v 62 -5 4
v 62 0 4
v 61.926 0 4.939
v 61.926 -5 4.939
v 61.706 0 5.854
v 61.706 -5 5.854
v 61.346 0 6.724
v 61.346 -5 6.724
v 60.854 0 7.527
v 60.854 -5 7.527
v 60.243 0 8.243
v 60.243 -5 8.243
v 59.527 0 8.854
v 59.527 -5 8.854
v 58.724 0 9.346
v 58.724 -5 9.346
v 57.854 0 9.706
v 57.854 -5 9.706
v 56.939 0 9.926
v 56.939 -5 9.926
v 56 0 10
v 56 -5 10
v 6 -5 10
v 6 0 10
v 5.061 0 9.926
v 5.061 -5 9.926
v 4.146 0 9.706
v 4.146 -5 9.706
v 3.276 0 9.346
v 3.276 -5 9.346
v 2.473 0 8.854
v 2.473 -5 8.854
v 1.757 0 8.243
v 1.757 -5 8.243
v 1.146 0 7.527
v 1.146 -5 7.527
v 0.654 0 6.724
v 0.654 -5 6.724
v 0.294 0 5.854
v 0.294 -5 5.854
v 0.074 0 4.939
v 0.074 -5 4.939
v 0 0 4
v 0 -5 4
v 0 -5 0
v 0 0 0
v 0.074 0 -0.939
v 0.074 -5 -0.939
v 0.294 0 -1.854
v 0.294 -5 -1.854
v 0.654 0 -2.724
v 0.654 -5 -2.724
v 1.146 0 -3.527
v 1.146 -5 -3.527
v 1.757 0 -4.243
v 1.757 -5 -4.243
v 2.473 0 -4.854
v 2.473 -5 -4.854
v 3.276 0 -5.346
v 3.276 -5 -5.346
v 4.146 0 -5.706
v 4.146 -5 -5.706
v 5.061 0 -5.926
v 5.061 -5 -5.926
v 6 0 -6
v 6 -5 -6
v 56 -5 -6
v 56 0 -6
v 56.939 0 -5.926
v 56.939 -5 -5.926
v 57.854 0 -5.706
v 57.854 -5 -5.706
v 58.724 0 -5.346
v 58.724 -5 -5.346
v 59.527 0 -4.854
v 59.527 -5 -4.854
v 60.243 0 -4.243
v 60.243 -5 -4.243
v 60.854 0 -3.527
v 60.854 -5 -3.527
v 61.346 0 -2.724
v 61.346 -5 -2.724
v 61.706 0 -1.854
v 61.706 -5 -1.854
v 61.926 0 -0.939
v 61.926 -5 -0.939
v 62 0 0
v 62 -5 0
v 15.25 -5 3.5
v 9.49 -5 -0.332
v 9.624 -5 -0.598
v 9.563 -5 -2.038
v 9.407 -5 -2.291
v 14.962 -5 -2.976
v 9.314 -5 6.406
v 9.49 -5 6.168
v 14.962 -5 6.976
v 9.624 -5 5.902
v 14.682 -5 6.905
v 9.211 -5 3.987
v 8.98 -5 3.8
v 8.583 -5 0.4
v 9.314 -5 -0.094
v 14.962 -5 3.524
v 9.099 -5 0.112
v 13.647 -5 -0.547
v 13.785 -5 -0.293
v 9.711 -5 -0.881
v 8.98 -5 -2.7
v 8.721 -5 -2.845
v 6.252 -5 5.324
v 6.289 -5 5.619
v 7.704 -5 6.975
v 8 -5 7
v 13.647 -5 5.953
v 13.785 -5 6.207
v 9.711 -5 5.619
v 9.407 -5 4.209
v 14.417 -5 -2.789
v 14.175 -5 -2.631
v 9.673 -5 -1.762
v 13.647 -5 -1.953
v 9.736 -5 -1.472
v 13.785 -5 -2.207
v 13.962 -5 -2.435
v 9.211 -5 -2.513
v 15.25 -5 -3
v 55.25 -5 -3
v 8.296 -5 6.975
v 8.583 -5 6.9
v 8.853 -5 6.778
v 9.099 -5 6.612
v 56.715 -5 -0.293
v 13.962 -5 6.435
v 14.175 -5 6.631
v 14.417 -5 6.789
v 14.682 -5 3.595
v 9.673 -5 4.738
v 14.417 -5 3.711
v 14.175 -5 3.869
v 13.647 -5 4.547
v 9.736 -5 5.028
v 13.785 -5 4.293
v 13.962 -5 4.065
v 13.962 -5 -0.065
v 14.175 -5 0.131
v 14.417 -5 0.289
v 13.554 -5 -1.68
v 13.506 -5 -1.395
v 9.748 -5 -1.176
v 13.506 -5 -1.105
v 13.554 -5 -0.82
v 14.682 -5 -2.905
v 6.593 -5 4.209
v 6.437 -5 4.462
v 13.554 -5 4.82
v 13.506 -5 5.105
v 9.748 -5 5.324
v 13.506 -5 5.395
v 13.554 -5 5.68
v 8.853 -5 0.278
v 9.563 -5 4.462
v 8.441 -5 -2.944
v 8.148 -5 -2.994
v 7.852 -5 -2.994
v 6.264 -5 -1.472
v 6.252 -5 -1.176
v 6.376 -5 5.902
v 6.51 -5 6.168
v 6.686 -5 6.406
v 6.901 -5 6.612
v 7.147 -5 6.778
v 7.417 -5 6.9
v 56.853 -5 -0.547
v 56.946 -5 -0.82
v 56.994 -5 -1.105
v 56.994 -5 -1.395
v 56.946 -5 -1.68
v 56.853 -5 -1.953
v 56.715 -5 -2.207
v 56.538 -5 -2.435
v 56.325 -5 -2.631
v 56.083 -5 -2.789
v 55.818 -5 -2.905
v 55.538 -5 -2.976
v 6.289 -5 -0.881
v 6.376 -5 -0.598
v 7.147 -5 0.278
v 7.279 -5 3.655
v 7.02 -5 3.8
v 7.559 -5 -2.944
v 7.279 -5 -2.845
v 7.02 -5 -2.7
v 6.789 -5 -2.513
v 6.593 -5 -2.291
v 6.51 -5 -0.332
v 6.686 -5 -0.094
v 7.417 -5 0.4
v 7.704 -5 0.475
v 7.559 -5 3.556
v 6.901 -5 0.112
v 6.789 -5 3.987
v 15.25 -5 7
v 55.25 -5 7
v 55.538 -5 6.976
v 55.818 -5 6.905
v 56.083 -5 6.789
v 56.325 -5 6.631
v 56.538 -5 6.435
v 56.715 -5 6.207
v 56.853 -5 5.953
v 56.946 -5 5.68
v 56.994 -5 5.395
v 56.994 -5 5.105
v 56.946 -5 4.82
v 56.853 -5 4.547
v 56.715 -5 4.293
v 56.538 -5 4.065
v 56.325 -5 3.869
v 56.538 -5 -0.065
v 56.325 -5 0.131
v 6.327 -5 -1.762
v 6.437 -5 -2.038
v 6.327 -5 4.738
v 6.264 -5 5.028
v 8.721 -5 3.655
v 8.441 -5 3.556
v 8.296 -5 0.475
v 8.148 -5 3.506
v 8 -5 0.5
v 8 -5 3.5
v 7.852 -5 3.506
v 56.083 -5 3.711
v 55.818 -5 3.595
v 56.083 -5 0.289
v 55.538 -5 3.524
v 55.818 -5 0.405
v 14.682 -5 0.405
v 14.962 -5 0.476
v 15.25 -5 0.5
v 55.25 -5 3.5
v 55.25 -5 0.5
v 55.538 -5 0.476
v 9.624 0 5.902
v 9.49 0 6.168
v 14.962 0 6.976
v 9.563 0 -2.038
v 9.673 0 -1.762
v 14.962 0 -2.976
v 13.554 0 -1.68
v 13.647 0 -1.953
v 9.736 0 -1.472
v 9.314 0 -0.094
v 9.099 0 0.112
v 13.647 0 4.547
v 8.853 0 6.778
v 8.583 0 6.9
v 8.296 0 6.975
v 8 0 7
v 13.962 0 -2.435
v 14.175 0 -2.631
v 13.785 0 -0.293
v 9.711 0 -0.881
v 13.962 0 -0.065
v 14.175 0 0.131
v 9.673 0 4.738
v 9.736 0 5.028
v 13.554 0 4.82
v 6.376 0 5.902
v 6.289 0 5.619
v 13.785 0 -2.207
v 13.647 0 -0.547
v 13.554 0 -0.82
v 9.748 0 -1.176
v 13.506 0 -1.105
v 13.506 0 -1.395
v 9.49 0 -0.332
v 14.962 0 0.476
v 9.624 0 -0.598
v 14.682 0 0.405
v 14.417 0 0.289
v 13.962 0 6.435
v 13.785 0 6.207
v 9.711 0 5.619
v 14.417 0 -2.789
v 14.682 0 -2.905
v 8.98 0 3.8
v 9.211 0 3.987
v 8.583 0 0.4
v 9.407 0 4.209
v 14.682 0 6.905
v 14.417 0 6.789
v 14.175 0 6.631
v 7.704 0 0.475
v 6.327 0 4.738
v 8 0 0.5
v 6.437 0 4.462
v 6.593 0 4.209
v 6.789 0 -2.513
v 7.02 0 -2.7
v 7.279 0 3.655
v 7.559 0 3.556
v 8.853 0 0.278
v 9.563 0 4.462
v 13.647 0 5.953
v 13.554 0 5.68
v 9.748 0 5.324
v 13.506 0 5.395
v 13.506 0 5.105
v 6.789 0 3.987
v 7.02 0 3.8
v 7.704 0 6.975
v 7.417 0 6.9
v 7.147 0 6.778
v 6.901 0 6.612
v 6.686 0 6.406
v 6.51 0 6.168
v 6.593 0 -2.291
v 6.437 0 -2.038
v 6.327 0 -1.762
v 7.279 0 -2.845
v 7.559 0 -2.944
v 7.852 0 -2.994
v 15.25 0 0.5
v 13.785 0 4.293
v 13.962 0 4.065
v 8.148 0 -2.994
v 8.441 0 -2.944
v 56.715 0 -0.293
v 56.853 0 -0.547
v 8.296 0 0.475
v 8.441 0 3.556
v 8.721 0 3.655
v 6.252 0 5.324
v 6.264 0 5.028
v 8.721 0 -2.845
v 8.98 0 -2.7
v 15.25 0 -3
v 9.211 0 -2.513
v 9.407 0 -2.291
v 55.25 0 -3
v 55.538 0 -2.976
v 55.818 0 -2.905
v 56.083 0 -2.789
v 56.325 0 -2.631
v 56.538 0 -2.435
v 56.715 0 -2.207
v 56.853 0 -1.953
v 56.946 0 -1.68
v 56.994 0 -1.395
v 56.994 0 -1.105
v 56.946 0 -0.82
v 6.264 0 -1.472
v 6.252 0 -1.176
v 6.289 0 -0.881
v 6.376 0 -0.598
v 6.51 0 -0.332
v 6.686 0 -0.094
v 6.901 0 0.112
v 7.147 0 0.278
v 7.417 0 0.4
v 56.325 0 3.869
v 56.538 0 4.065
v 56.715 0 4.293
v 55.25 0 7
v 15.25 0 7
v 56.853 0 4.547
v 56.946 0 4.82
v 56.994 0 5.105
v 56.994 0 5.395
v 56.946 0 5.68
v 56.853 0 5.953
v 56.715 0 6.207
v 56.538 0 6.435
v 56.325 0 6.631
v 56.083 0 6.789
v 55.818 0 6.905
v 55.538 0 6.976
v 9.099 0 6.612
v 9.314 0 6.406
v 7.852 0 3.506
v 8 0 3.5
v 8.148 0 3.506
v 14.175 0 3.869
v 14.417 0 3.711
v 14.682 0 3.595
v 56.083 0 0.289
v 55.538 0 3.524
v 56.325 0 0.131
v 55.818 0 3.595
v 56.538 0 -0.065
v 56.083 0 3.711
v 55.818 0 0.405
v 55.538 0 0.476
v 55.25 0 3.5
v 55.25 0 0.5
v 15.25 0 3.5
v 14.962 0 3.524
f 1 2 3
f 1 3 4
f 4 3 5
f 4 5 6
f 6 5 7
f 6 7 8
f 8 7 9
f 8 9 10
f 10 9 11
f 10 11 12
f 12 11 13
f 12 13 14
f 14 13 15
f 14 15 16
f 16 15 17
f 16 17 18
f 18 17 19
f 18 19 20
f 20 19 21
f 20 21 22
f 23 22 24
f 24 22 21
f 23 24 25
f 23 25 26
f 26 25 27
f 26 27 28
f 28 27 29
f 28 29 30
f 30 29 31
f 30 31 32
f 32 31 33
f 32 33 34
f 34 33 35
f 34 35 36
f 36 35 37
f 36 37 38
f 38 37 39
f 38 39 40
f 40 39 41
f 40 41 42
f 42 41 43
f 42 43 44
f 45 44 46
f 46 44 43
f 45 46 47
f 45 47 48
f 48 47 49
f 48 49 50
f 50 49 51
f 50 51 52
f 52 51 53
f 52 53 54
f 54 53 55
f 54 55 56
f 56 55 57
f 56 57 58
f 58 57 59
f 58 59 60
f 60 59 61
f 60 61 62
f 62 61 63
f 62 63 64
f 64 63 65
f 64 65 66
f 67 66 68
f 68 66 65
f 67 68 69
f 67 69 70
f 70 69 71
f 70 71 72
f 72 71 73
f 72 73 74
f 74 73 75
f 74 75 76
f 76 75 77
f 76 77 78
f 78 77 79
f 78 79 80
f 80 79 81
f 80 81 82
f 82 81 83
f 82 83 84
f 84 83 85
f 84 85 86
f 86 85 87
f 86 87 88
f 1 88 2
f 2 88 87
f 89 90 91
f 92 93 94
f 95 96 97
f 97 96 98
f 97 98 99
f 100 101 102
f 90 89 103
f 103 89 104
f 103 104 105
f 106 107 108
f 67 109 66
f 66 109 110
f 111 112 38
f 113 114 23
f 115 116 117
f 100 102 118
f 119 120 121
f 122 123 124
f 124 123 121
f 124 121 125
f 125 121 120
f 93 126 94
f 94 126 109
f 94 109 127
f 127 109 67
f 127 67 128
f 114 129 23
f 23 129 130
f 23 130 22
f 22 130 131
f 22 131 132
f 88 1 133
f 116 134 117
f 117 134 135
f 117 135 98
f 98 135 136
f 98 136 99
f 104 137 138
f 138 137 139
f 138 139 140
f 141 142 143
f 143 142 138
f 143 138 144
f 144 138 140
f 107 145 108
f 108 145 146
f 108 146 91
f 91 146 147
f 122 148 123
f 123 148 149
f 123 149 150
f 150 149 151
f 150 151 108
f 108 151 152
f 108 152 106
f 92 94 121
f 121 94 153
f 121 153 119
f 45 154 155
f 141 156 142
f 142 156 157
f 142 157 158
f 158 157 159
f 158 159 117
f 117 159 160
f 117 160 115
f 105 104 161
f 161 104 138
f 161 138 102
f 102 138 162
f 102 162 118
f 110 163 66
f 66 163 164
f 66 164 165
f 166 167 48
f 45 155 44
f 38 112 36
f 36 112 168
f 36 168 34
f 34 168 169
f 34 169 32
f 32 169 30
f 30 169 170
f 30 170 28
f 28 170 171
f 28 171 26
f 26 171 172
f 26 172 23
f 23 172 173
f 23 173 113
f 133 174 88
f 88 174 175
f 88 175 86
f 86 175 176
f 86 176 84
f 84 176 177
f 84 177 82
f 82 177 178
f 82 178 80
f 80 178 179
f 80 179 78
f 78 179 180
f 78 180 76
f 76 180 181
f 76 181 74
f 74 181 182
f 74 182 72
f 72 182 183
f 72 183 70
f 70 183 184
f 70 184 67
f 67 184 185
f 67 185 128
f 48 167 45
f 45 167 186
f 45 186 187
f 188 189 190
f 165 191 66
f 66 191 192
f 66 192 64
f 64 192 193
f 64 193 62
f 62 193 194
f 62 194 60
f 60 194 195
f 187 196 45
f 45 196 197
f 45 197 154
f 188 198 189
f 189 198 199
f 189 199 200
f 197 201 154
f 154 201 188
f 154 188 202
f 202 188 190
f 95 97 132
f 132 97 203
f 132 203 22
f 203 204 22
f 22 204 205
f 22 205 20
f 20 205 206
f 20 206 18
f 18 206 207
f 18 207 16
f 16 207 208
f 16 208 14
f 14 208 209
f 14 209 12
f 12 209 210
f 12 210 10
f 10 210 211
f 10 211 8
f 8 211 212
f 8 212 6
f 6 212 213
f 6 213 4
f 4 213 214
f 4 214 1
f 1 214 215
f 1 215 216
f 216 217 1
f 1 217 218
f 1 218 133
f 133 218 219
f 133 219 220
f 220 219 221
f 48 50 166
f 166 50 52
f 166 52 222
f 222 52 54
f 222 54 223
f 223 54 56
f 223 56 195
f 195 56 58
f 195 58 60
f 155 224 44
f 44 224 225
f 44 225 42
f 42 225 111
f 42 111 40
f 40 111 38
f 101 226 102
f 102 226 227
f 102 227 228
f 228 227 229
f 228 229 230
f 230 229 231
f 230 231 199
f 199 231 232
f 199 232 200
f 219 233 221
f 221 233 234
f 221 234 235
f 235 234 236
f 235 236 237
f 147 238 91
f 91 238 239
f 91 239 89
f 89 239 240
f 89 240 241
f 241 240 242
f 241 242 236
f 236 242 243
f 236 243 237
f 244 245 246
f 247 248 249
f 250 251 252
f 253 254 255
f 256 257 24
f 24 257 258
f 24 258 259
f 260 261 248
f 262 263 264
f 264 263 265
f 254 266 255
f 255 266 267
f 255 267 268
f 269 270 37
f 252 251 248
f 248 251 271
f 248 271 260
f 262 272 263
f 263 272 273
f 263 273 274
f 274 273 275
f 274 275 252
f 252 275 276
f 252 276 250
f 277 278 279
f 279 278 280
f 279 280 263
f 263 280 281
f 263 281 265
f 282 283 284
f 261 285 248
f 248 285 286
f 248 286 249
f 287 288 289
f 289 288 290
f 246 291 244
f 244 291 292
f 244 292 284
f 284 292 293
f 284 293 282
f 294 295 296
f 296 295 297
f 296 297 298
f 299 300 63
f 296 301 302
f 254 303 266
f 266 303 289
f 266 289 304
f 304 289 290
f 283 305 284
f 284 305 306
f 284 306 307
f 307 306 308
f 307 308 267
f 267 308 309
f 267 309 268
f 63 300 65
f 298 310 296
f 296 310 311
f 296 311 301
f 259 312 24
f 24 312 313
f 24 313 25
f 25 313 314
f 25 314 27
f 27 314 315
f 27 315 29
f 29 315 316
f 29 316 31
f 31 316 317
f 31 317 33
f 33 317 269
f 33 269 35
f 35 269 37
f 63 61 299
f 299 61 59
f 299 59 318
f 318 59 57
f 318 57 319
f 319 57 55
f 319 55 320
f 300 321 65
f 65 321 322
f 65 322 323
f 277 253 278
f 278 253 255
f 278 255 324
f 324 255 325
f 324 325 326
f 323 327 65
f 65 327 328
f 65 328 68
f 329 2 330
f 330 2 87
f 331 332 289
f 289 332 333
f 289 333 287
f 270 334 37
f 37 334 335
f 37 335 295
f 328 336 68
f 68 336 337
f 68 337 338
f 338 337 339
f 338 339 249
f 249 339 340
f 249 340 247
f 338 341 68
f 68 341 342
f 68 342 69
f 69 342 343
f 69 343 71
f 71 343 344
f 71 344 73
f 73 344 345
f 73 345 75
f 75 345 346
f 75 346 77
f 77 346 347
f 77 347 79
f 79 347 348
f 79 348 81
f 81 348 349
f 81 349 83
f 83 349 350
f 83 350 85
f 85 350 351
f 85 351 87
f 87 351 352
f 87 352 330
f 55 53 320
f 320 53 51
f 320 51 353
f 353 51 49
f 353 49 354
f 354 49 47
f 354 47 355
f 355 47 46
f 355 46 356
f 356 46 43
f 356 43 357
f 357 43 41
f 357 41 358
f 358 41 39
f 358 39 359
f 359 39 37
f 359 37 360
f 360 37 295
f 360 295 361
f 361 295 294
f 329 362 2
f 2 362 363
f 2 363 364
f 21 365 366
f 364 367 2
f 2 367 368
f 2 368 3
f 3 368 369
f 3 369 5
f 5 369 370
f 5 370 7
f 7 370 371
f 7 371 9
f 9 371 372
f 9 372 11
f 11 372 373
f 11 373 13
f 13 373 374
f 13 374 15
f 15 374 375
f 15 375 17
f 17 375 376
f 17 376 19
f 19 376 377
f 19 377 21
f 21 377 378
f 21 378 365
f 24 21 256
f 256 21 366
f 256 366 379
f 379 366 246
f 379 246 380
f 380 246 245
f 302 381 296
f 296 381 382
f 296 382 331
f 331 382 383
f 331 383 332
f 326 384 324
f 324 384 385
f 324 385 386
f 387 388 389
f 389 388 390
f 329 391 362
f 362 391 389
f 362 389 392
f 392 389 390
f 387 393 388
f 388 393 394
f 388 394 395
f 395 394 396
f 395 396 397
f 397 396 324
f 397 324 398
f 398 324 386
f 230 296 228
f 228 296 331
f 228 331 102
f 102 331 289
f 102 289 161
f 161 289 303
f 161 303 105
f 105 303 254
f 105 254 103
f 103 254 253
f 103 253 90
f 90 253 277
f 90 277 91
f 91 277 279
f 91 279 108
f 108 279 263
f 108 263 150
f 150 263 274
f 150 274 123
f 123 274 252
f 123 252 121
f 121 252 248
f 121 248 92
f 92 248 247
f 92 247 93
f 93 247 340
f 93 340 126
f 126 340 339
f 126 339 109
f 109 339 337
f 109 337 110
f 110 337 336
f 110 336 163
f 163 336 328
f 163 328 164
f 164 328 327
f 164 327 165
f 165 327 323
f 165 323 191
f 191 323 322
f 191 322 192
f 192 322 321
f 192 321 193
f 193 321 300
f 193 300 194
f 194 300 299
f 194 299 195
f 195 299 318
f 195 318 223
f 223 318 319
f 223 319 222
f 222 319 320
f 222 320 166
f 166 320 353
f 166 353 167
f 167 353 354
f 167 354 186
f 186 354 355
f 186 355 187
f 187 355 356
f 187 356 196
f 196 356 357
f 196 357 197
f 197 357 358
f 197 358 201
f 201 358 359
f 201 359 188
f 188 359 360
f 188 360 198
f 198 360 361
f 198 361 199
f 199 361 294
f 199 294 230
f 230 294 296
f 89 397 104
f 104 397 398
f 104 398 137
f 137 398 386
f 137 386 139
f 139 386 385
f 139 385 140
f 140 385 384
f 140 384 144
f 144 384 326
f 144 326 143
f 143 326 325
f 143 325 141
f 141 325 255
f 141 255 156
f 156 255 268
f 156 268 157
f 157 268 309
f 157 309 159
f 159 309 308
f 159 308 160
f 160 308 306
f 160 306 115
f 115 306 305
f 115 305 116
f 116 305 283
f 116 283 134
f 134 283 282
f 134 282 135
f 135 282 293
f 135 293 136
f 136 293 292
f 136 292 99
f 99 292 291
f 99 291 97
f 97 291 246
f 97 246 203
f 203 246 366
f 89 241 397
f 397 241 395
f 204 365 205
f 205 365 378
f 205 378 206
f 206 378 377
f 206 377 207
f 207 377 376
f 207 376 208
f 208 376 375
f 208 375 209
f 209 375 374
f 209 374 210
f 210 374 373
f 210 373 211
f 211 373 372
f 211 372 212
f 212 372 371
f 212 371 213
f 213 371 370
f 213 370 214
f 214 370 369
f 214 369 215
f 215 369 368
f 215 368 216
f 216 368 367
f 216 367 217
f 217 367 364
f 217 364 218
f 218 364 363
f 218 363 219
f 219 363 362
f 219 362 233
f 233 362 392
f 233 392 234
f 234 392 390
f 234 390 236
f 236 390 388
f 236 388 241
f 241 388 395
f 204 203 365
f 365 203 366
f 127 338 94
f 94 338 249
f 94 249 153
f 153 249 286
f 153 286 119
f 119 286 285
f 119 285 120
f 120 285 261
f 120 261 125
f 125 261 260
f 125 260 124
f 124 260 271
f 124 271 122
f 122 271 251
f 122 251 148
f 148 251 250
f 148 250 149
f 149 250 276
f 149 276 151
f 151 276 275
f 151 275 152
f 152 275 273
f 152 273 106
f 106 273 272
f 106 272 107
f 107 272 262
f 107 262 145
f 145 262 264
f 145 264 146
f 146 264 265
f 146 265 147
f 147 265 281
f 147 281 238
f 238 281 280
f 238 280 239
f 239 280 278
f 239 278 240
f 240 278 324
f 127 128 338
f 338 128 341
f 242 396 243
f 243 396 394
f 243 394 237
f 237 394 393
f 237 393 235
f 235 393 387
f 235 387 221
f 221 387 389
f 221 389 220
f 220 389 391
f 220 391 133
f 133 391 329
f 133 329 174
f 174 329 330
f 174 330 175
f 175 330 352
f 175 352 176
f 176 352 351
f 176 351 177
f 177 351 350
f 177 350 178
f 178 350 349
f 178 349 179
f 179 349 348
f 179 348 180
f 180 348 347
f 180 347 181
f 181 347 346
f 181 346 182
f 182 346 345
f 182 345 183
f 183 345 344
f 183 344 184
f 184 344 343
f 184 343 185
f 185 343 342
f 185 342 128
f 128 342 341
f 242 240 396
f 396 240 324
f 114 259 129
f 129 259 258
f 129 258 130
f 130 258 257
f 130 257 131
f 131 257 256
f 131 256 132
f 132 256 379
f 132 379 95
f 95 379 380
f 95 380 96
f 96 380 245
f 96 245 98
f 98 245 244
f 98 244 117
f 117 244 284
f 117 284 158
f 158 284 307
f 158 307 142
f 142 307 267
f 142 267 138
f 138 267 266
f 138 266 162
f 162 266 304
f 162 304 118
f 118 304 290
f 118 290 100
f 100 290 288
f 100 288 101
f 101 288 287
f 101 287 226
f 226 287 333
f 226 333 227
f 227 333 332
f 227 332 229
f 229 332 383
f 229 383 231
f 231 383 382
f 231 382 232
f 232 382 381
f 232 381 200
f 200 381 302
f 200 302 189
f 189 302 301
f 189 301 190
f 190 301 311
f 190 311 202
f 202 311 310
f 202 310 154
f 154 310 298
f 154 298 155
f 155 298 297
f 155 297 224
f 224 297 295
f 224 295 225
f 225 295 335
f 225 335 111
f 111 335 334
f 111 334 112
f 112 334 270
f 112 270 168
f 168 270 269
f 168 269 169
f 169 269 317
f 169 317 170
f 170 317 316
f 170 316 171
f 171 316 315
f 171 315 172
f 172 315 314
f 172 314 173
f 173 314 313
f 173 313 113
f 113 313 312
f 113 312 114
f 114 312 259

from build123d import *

# Parameters (mm, degrees)
SKETCH1_R           = 1.75
BOSS_EXTRUDE1_DEPTH = 5


with BuildPart() as part:
    # Sketch1 → Boss-Extrude1 (new body)
    with BuildSketch(Plane(origin=(0, 0, 0), x_dir=(1, 0, 0), z_dir=(0, 1, 0))):
        with BuildLine():
            Line((6, 6), (56, 6))
            ThreePointArc((56, 6), (60.242640687, 4.242640687), (62, 0))
            Line((62, 0), (62, -4))
            ThreePointArc((62, -4), (60.242640687, -8.242640687), (56, -10))
            Line((56, -10), (6, -10))
            ThreePointArc((6, -10), (1.757359313, -8.242640687), (0, -4))
            Line((0, -4), (0, 0))
            ThreePointArc((0, 0), (1.757359313, 4.242640687), (6, 6))
        make_face()
        with Locations(Location((8, 1.25, 0), (0, 0, 270))):
            Circle(SKETCH1_R, mode=Mode.SUBTRACT)
        with Locations(Location((8, -5.25, 0), (0, 0, 90))):
            Circle(SKETCH1_R, mode=Mode.SUBTRACT)
        with BuildLine():
            Line((15.25, -7), (55.25, -7))
            ThreePointArc((55.25, -7), (57, -5.25), (55.25, -3.5))
            Line((55.25, -3.5), (15.25, -3.5))
            ThreePointArc((15.25, -3.5), (13.5, -5.25), (15.25, -7))
        make_face(mode=Mode.SUBTRACT)
        with BuildLine():
            Line((15.25, 3), (55.25, 3))
            ThreePointArc((55.25, 3), (57, 1.25), (55.25, -0.5))
            Line((55.25, -0.5), (15.25, -0.5))
            ThreePointArc((15.25, -0.5), (13.5, 1.25), (15.25, 3))
        make_face(mode=Mode.SUBTRACT)
    extrude(amount=-BOSS_EXTRUDE1_DEPTH)


solid = part.part
